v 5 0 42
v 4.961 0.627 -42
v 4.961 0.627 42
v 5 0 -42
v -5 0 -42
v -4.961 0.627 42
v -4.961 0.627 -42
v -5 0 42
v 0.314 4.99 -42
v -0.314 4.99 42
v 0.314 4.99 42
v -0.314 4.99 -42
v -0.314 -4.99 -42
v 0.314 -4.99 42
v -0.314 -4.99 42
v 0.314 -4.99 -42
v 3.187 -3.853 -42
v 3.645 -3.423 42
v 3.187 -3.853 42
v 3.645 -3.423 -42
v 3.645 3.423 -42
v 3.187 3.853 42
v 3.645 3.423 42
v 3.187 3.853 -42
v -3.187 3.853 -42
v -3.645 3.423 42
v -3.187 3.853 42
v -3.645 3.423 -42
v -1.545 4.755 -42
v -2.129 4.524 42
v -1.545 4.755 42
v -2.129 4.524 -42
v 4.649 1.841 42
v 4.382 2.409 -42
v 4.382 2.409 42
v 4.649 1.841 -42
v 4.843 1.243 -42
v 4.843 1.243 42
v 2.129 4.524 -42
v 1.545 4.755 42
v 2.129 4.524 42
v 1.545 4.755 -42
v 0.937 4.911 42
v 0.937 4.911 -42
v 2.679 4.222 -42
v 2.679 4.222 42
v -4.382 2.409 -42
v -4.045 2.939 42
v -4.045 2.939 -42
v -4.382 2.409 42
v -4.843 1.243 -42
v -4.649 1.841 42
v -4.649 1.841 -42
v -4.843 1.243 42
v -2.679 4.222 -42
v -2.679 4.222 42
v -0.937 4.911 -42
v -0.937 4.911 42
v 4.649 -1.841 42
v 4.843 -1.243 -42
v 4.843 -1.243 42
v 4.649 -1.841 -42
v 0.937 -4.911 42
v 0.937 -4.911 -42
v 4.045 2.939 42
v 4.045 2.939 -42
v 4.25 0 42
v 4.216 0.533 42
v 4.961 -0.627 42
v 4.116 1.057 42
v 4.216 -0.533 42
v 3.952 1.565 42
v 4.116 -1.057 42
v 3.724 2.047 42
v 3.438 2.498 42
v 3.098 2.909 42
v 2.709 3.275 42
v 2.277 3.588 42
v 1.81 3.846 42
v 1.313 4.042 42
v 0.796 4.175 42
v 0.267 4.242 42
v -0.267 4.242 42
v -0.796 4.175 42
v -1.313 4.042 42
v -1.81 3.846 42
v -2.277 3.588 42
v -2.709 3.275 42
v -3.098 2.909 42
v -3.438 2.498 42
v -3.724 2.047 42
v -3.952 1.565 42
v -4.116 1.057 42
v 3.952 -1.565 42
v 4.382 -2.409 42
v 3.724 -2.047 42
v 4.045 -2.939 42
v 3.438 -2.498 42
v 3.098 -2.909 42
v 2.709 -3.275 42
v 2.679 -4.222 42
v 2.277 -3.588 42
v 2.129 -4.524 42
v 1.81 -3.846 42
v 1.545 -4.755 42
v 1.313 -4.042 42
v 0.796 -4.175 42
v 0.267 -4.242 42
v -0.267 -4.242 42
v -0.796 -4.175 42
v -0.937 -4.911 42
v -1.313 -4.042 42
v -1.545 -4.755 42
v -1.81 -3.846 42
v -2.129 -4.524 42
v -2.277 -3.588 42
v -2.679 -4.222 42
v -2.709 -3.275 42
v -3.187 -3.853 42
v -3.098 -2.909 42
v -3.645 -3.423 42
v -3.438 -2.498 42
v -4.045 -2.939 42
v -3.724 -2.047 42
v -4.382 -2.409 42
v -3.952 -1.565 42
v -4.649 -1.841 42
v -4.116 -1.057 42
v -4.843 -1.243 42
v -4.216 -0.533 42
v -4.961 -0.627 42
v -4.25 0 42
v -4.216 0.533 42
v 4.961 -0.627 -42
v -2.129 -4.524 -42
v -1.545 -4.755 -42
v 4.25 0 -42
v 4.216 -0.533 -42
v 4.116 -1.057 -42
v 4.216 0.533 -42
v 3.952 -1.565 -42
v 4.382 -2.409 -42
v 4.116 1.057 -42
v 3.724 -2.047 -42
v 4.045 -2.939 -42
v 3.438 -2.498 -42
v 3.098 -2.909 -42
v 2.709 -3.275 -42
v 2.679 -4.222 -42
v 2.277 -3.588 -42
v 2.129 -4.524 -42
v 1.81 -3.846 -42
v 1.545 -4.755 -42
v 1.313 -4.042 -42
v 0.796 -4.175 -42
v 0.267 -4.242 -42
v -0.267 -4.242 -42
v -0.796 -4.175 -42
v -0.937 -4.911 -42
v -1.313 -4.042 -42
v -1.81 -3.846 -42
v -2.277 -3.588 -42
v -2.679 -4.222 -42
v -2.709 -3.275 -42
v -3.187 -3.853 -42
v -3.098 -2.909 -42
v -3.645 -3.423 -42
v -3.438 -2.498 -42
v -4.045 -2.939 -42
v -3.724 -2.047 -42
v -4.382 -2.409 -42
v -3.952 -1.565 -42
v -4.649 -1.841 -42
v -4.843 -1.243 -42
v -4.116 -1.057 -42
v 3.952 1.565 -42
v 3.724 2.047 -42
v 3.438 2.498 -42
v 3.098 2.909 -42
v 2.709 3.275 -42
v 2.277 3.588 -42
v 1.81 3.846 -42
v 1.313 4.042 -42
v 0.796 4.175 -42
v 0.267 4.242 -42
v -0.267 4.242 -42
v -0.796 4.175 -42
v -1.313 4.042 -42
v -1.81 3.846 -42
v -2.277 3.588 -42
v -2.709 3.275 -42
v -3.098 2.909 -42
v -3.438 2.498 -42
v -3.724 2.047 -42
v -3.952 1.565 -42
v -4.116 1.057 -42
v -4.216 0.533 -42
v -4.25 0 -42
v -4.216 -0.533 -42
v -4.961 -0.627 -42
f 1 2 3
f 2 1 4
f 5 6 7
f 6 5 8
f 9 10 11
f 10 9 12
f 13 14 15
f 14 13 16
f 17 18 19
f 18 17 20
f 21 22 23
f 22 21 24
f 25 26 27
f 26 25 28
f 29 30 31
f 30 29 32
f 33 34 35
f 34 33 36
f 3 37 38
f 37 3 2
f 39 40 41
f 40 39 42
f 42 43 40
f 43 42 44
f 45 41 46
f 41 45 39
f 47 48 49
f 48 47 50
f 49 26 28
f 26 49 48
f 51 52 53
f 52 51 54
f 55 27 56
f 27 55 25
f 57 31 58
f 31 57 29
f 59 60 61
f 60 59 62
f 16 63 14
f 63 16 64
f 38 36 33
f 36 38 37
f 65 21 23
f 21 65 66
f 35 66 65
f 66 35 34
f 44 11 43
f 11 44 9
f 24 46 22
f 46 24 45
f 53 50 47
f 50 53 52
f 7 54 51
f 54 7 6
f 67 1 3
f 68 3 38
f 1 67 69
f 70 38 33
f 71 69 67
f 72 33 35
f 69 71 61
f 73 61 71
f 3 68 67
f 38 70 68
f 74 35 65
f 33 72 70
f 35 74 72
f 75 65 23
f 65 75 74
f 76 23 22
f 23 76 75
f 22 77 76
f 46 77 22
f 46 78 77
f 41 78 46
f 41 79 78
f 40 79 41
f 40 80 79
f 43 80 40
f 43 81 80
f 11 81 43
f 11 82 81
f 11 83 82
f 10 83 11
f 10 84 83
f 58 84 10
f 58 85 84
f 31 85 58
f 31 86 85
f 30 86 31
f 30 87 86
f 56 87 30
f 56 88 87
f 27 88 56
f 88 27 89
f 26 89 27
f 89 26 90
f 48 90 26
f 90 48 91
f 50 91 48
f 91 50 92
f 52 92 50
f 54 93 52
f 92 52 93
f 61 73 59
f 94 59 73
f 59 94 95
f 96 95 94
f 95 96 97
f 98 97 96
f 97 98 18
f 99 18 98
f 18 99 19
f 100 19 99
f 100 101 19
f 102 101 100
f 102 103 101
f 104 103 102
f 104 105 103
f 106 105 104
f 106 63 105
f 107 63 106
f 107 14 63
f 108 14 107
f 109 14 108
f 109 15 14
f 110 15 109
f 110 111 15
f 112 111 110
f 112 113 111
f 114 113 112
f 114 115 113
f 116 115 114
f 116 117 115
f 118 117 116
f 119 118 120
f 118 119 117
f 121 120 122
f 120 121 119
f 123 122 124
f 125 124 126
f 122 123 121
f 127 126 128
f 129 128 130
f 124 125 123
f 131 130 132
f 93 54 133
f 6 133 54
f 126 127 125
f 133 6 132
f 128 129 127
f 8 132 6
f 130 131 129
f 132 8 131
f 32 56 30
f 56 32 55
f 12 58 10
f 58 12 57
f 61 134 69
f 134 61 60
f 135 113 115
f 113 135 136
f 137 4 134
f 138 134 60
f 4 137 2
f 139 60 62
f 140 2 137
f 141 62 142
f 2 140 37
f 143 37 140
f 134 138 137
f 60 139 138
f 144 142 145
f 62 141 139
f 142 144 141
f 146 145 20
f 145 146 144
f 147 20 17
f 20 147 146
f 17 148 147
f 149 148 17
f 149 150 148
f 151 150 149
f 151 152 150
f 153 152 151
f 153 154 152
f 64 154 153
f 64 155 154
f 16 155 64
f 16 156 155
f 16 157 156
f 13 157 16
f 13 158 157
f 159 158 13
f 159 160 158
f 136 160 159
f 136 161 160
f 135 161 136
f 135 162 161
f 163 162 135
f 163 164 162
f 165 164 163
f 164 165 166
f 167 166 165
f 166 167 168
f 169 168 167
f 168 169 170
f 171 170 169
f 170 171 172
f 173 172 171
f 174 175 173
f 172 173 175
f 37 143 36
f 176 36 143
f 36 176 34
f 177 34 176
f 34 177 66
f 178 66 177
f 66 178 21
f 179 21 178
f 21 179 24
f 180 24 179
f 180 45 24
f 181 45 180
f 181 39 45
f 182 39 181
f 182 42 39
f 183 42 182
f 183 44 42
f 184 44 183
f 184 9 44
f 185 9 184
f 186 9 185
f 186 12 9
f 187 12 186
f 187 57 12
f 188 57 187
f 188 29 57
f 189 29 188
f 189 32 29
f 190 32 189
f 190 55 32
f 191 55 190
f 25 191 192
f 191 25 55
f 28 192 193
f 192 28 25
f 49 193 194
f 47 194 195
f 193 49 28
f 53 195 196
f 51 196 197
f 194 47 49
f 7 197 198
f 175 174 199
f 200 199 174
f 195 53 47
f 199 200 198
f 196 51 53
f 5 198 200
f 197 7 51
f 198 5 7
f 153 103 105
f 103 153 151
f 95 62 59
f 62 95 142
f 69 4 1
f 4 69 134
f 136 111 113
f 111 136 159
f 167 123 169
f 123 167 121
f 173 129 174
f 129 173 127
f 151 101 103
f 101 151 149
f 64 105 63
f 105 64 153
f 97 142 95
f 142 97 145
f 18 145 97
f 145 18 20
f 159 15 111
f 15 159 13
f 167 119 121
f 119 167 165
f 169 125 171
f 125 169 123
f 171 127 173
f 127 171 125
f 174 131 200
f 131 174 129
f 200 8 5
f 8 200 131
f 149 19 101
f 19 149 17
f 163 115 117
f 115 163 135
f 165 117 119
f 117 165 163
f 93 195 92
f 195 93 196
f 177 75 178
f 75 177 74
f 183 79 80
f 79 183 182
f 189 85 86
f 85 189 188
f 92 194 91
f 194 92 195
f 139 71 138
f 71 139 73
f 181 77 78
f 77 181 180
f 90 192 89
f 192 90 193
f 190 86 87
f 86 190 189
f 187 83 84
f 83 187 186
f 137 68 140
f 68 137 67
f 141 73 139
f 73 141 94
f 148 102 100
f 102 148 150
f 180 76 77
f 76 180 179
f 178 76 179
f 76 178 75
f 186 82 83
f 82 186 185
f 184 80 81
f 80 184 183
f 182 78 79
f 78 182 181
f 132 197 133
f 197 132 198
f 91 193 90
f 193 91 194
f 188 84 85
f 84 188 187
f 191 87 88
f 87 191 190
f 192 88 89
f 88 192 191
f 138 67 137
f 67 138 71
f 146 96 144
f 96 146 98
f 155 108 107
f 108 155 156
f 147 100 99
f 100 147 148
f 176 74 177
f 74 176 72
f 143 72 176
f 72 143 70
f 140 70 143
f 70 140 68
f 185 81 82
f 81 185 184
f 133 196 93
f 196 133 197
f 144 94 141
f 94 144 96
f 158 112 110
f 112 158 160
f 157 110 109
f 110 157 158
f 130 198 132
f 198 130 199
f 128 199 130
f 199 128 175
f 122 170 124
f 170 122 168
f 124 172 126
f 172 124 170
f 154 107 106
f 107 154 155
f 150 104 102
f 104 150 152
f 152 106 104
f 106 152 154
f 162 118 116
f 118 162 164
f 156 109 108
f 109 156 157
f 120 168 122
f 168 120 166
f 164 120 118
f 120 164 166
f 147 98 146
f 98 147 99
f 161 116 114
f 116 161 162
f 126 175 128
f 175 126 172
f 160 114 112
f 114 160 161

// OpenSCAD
$fn = 50;


difference() {
	union() {
		translate(v = [0, 0, -42.0000000000]) {
			cylinder(h = 84, r = 5.0000000000);
		}
	}
	union() {
		translate(v = [0, 0, -100.0000000000]) {
			cylinder(h = 200, r = 4.2500000000);
		}
	}
}
